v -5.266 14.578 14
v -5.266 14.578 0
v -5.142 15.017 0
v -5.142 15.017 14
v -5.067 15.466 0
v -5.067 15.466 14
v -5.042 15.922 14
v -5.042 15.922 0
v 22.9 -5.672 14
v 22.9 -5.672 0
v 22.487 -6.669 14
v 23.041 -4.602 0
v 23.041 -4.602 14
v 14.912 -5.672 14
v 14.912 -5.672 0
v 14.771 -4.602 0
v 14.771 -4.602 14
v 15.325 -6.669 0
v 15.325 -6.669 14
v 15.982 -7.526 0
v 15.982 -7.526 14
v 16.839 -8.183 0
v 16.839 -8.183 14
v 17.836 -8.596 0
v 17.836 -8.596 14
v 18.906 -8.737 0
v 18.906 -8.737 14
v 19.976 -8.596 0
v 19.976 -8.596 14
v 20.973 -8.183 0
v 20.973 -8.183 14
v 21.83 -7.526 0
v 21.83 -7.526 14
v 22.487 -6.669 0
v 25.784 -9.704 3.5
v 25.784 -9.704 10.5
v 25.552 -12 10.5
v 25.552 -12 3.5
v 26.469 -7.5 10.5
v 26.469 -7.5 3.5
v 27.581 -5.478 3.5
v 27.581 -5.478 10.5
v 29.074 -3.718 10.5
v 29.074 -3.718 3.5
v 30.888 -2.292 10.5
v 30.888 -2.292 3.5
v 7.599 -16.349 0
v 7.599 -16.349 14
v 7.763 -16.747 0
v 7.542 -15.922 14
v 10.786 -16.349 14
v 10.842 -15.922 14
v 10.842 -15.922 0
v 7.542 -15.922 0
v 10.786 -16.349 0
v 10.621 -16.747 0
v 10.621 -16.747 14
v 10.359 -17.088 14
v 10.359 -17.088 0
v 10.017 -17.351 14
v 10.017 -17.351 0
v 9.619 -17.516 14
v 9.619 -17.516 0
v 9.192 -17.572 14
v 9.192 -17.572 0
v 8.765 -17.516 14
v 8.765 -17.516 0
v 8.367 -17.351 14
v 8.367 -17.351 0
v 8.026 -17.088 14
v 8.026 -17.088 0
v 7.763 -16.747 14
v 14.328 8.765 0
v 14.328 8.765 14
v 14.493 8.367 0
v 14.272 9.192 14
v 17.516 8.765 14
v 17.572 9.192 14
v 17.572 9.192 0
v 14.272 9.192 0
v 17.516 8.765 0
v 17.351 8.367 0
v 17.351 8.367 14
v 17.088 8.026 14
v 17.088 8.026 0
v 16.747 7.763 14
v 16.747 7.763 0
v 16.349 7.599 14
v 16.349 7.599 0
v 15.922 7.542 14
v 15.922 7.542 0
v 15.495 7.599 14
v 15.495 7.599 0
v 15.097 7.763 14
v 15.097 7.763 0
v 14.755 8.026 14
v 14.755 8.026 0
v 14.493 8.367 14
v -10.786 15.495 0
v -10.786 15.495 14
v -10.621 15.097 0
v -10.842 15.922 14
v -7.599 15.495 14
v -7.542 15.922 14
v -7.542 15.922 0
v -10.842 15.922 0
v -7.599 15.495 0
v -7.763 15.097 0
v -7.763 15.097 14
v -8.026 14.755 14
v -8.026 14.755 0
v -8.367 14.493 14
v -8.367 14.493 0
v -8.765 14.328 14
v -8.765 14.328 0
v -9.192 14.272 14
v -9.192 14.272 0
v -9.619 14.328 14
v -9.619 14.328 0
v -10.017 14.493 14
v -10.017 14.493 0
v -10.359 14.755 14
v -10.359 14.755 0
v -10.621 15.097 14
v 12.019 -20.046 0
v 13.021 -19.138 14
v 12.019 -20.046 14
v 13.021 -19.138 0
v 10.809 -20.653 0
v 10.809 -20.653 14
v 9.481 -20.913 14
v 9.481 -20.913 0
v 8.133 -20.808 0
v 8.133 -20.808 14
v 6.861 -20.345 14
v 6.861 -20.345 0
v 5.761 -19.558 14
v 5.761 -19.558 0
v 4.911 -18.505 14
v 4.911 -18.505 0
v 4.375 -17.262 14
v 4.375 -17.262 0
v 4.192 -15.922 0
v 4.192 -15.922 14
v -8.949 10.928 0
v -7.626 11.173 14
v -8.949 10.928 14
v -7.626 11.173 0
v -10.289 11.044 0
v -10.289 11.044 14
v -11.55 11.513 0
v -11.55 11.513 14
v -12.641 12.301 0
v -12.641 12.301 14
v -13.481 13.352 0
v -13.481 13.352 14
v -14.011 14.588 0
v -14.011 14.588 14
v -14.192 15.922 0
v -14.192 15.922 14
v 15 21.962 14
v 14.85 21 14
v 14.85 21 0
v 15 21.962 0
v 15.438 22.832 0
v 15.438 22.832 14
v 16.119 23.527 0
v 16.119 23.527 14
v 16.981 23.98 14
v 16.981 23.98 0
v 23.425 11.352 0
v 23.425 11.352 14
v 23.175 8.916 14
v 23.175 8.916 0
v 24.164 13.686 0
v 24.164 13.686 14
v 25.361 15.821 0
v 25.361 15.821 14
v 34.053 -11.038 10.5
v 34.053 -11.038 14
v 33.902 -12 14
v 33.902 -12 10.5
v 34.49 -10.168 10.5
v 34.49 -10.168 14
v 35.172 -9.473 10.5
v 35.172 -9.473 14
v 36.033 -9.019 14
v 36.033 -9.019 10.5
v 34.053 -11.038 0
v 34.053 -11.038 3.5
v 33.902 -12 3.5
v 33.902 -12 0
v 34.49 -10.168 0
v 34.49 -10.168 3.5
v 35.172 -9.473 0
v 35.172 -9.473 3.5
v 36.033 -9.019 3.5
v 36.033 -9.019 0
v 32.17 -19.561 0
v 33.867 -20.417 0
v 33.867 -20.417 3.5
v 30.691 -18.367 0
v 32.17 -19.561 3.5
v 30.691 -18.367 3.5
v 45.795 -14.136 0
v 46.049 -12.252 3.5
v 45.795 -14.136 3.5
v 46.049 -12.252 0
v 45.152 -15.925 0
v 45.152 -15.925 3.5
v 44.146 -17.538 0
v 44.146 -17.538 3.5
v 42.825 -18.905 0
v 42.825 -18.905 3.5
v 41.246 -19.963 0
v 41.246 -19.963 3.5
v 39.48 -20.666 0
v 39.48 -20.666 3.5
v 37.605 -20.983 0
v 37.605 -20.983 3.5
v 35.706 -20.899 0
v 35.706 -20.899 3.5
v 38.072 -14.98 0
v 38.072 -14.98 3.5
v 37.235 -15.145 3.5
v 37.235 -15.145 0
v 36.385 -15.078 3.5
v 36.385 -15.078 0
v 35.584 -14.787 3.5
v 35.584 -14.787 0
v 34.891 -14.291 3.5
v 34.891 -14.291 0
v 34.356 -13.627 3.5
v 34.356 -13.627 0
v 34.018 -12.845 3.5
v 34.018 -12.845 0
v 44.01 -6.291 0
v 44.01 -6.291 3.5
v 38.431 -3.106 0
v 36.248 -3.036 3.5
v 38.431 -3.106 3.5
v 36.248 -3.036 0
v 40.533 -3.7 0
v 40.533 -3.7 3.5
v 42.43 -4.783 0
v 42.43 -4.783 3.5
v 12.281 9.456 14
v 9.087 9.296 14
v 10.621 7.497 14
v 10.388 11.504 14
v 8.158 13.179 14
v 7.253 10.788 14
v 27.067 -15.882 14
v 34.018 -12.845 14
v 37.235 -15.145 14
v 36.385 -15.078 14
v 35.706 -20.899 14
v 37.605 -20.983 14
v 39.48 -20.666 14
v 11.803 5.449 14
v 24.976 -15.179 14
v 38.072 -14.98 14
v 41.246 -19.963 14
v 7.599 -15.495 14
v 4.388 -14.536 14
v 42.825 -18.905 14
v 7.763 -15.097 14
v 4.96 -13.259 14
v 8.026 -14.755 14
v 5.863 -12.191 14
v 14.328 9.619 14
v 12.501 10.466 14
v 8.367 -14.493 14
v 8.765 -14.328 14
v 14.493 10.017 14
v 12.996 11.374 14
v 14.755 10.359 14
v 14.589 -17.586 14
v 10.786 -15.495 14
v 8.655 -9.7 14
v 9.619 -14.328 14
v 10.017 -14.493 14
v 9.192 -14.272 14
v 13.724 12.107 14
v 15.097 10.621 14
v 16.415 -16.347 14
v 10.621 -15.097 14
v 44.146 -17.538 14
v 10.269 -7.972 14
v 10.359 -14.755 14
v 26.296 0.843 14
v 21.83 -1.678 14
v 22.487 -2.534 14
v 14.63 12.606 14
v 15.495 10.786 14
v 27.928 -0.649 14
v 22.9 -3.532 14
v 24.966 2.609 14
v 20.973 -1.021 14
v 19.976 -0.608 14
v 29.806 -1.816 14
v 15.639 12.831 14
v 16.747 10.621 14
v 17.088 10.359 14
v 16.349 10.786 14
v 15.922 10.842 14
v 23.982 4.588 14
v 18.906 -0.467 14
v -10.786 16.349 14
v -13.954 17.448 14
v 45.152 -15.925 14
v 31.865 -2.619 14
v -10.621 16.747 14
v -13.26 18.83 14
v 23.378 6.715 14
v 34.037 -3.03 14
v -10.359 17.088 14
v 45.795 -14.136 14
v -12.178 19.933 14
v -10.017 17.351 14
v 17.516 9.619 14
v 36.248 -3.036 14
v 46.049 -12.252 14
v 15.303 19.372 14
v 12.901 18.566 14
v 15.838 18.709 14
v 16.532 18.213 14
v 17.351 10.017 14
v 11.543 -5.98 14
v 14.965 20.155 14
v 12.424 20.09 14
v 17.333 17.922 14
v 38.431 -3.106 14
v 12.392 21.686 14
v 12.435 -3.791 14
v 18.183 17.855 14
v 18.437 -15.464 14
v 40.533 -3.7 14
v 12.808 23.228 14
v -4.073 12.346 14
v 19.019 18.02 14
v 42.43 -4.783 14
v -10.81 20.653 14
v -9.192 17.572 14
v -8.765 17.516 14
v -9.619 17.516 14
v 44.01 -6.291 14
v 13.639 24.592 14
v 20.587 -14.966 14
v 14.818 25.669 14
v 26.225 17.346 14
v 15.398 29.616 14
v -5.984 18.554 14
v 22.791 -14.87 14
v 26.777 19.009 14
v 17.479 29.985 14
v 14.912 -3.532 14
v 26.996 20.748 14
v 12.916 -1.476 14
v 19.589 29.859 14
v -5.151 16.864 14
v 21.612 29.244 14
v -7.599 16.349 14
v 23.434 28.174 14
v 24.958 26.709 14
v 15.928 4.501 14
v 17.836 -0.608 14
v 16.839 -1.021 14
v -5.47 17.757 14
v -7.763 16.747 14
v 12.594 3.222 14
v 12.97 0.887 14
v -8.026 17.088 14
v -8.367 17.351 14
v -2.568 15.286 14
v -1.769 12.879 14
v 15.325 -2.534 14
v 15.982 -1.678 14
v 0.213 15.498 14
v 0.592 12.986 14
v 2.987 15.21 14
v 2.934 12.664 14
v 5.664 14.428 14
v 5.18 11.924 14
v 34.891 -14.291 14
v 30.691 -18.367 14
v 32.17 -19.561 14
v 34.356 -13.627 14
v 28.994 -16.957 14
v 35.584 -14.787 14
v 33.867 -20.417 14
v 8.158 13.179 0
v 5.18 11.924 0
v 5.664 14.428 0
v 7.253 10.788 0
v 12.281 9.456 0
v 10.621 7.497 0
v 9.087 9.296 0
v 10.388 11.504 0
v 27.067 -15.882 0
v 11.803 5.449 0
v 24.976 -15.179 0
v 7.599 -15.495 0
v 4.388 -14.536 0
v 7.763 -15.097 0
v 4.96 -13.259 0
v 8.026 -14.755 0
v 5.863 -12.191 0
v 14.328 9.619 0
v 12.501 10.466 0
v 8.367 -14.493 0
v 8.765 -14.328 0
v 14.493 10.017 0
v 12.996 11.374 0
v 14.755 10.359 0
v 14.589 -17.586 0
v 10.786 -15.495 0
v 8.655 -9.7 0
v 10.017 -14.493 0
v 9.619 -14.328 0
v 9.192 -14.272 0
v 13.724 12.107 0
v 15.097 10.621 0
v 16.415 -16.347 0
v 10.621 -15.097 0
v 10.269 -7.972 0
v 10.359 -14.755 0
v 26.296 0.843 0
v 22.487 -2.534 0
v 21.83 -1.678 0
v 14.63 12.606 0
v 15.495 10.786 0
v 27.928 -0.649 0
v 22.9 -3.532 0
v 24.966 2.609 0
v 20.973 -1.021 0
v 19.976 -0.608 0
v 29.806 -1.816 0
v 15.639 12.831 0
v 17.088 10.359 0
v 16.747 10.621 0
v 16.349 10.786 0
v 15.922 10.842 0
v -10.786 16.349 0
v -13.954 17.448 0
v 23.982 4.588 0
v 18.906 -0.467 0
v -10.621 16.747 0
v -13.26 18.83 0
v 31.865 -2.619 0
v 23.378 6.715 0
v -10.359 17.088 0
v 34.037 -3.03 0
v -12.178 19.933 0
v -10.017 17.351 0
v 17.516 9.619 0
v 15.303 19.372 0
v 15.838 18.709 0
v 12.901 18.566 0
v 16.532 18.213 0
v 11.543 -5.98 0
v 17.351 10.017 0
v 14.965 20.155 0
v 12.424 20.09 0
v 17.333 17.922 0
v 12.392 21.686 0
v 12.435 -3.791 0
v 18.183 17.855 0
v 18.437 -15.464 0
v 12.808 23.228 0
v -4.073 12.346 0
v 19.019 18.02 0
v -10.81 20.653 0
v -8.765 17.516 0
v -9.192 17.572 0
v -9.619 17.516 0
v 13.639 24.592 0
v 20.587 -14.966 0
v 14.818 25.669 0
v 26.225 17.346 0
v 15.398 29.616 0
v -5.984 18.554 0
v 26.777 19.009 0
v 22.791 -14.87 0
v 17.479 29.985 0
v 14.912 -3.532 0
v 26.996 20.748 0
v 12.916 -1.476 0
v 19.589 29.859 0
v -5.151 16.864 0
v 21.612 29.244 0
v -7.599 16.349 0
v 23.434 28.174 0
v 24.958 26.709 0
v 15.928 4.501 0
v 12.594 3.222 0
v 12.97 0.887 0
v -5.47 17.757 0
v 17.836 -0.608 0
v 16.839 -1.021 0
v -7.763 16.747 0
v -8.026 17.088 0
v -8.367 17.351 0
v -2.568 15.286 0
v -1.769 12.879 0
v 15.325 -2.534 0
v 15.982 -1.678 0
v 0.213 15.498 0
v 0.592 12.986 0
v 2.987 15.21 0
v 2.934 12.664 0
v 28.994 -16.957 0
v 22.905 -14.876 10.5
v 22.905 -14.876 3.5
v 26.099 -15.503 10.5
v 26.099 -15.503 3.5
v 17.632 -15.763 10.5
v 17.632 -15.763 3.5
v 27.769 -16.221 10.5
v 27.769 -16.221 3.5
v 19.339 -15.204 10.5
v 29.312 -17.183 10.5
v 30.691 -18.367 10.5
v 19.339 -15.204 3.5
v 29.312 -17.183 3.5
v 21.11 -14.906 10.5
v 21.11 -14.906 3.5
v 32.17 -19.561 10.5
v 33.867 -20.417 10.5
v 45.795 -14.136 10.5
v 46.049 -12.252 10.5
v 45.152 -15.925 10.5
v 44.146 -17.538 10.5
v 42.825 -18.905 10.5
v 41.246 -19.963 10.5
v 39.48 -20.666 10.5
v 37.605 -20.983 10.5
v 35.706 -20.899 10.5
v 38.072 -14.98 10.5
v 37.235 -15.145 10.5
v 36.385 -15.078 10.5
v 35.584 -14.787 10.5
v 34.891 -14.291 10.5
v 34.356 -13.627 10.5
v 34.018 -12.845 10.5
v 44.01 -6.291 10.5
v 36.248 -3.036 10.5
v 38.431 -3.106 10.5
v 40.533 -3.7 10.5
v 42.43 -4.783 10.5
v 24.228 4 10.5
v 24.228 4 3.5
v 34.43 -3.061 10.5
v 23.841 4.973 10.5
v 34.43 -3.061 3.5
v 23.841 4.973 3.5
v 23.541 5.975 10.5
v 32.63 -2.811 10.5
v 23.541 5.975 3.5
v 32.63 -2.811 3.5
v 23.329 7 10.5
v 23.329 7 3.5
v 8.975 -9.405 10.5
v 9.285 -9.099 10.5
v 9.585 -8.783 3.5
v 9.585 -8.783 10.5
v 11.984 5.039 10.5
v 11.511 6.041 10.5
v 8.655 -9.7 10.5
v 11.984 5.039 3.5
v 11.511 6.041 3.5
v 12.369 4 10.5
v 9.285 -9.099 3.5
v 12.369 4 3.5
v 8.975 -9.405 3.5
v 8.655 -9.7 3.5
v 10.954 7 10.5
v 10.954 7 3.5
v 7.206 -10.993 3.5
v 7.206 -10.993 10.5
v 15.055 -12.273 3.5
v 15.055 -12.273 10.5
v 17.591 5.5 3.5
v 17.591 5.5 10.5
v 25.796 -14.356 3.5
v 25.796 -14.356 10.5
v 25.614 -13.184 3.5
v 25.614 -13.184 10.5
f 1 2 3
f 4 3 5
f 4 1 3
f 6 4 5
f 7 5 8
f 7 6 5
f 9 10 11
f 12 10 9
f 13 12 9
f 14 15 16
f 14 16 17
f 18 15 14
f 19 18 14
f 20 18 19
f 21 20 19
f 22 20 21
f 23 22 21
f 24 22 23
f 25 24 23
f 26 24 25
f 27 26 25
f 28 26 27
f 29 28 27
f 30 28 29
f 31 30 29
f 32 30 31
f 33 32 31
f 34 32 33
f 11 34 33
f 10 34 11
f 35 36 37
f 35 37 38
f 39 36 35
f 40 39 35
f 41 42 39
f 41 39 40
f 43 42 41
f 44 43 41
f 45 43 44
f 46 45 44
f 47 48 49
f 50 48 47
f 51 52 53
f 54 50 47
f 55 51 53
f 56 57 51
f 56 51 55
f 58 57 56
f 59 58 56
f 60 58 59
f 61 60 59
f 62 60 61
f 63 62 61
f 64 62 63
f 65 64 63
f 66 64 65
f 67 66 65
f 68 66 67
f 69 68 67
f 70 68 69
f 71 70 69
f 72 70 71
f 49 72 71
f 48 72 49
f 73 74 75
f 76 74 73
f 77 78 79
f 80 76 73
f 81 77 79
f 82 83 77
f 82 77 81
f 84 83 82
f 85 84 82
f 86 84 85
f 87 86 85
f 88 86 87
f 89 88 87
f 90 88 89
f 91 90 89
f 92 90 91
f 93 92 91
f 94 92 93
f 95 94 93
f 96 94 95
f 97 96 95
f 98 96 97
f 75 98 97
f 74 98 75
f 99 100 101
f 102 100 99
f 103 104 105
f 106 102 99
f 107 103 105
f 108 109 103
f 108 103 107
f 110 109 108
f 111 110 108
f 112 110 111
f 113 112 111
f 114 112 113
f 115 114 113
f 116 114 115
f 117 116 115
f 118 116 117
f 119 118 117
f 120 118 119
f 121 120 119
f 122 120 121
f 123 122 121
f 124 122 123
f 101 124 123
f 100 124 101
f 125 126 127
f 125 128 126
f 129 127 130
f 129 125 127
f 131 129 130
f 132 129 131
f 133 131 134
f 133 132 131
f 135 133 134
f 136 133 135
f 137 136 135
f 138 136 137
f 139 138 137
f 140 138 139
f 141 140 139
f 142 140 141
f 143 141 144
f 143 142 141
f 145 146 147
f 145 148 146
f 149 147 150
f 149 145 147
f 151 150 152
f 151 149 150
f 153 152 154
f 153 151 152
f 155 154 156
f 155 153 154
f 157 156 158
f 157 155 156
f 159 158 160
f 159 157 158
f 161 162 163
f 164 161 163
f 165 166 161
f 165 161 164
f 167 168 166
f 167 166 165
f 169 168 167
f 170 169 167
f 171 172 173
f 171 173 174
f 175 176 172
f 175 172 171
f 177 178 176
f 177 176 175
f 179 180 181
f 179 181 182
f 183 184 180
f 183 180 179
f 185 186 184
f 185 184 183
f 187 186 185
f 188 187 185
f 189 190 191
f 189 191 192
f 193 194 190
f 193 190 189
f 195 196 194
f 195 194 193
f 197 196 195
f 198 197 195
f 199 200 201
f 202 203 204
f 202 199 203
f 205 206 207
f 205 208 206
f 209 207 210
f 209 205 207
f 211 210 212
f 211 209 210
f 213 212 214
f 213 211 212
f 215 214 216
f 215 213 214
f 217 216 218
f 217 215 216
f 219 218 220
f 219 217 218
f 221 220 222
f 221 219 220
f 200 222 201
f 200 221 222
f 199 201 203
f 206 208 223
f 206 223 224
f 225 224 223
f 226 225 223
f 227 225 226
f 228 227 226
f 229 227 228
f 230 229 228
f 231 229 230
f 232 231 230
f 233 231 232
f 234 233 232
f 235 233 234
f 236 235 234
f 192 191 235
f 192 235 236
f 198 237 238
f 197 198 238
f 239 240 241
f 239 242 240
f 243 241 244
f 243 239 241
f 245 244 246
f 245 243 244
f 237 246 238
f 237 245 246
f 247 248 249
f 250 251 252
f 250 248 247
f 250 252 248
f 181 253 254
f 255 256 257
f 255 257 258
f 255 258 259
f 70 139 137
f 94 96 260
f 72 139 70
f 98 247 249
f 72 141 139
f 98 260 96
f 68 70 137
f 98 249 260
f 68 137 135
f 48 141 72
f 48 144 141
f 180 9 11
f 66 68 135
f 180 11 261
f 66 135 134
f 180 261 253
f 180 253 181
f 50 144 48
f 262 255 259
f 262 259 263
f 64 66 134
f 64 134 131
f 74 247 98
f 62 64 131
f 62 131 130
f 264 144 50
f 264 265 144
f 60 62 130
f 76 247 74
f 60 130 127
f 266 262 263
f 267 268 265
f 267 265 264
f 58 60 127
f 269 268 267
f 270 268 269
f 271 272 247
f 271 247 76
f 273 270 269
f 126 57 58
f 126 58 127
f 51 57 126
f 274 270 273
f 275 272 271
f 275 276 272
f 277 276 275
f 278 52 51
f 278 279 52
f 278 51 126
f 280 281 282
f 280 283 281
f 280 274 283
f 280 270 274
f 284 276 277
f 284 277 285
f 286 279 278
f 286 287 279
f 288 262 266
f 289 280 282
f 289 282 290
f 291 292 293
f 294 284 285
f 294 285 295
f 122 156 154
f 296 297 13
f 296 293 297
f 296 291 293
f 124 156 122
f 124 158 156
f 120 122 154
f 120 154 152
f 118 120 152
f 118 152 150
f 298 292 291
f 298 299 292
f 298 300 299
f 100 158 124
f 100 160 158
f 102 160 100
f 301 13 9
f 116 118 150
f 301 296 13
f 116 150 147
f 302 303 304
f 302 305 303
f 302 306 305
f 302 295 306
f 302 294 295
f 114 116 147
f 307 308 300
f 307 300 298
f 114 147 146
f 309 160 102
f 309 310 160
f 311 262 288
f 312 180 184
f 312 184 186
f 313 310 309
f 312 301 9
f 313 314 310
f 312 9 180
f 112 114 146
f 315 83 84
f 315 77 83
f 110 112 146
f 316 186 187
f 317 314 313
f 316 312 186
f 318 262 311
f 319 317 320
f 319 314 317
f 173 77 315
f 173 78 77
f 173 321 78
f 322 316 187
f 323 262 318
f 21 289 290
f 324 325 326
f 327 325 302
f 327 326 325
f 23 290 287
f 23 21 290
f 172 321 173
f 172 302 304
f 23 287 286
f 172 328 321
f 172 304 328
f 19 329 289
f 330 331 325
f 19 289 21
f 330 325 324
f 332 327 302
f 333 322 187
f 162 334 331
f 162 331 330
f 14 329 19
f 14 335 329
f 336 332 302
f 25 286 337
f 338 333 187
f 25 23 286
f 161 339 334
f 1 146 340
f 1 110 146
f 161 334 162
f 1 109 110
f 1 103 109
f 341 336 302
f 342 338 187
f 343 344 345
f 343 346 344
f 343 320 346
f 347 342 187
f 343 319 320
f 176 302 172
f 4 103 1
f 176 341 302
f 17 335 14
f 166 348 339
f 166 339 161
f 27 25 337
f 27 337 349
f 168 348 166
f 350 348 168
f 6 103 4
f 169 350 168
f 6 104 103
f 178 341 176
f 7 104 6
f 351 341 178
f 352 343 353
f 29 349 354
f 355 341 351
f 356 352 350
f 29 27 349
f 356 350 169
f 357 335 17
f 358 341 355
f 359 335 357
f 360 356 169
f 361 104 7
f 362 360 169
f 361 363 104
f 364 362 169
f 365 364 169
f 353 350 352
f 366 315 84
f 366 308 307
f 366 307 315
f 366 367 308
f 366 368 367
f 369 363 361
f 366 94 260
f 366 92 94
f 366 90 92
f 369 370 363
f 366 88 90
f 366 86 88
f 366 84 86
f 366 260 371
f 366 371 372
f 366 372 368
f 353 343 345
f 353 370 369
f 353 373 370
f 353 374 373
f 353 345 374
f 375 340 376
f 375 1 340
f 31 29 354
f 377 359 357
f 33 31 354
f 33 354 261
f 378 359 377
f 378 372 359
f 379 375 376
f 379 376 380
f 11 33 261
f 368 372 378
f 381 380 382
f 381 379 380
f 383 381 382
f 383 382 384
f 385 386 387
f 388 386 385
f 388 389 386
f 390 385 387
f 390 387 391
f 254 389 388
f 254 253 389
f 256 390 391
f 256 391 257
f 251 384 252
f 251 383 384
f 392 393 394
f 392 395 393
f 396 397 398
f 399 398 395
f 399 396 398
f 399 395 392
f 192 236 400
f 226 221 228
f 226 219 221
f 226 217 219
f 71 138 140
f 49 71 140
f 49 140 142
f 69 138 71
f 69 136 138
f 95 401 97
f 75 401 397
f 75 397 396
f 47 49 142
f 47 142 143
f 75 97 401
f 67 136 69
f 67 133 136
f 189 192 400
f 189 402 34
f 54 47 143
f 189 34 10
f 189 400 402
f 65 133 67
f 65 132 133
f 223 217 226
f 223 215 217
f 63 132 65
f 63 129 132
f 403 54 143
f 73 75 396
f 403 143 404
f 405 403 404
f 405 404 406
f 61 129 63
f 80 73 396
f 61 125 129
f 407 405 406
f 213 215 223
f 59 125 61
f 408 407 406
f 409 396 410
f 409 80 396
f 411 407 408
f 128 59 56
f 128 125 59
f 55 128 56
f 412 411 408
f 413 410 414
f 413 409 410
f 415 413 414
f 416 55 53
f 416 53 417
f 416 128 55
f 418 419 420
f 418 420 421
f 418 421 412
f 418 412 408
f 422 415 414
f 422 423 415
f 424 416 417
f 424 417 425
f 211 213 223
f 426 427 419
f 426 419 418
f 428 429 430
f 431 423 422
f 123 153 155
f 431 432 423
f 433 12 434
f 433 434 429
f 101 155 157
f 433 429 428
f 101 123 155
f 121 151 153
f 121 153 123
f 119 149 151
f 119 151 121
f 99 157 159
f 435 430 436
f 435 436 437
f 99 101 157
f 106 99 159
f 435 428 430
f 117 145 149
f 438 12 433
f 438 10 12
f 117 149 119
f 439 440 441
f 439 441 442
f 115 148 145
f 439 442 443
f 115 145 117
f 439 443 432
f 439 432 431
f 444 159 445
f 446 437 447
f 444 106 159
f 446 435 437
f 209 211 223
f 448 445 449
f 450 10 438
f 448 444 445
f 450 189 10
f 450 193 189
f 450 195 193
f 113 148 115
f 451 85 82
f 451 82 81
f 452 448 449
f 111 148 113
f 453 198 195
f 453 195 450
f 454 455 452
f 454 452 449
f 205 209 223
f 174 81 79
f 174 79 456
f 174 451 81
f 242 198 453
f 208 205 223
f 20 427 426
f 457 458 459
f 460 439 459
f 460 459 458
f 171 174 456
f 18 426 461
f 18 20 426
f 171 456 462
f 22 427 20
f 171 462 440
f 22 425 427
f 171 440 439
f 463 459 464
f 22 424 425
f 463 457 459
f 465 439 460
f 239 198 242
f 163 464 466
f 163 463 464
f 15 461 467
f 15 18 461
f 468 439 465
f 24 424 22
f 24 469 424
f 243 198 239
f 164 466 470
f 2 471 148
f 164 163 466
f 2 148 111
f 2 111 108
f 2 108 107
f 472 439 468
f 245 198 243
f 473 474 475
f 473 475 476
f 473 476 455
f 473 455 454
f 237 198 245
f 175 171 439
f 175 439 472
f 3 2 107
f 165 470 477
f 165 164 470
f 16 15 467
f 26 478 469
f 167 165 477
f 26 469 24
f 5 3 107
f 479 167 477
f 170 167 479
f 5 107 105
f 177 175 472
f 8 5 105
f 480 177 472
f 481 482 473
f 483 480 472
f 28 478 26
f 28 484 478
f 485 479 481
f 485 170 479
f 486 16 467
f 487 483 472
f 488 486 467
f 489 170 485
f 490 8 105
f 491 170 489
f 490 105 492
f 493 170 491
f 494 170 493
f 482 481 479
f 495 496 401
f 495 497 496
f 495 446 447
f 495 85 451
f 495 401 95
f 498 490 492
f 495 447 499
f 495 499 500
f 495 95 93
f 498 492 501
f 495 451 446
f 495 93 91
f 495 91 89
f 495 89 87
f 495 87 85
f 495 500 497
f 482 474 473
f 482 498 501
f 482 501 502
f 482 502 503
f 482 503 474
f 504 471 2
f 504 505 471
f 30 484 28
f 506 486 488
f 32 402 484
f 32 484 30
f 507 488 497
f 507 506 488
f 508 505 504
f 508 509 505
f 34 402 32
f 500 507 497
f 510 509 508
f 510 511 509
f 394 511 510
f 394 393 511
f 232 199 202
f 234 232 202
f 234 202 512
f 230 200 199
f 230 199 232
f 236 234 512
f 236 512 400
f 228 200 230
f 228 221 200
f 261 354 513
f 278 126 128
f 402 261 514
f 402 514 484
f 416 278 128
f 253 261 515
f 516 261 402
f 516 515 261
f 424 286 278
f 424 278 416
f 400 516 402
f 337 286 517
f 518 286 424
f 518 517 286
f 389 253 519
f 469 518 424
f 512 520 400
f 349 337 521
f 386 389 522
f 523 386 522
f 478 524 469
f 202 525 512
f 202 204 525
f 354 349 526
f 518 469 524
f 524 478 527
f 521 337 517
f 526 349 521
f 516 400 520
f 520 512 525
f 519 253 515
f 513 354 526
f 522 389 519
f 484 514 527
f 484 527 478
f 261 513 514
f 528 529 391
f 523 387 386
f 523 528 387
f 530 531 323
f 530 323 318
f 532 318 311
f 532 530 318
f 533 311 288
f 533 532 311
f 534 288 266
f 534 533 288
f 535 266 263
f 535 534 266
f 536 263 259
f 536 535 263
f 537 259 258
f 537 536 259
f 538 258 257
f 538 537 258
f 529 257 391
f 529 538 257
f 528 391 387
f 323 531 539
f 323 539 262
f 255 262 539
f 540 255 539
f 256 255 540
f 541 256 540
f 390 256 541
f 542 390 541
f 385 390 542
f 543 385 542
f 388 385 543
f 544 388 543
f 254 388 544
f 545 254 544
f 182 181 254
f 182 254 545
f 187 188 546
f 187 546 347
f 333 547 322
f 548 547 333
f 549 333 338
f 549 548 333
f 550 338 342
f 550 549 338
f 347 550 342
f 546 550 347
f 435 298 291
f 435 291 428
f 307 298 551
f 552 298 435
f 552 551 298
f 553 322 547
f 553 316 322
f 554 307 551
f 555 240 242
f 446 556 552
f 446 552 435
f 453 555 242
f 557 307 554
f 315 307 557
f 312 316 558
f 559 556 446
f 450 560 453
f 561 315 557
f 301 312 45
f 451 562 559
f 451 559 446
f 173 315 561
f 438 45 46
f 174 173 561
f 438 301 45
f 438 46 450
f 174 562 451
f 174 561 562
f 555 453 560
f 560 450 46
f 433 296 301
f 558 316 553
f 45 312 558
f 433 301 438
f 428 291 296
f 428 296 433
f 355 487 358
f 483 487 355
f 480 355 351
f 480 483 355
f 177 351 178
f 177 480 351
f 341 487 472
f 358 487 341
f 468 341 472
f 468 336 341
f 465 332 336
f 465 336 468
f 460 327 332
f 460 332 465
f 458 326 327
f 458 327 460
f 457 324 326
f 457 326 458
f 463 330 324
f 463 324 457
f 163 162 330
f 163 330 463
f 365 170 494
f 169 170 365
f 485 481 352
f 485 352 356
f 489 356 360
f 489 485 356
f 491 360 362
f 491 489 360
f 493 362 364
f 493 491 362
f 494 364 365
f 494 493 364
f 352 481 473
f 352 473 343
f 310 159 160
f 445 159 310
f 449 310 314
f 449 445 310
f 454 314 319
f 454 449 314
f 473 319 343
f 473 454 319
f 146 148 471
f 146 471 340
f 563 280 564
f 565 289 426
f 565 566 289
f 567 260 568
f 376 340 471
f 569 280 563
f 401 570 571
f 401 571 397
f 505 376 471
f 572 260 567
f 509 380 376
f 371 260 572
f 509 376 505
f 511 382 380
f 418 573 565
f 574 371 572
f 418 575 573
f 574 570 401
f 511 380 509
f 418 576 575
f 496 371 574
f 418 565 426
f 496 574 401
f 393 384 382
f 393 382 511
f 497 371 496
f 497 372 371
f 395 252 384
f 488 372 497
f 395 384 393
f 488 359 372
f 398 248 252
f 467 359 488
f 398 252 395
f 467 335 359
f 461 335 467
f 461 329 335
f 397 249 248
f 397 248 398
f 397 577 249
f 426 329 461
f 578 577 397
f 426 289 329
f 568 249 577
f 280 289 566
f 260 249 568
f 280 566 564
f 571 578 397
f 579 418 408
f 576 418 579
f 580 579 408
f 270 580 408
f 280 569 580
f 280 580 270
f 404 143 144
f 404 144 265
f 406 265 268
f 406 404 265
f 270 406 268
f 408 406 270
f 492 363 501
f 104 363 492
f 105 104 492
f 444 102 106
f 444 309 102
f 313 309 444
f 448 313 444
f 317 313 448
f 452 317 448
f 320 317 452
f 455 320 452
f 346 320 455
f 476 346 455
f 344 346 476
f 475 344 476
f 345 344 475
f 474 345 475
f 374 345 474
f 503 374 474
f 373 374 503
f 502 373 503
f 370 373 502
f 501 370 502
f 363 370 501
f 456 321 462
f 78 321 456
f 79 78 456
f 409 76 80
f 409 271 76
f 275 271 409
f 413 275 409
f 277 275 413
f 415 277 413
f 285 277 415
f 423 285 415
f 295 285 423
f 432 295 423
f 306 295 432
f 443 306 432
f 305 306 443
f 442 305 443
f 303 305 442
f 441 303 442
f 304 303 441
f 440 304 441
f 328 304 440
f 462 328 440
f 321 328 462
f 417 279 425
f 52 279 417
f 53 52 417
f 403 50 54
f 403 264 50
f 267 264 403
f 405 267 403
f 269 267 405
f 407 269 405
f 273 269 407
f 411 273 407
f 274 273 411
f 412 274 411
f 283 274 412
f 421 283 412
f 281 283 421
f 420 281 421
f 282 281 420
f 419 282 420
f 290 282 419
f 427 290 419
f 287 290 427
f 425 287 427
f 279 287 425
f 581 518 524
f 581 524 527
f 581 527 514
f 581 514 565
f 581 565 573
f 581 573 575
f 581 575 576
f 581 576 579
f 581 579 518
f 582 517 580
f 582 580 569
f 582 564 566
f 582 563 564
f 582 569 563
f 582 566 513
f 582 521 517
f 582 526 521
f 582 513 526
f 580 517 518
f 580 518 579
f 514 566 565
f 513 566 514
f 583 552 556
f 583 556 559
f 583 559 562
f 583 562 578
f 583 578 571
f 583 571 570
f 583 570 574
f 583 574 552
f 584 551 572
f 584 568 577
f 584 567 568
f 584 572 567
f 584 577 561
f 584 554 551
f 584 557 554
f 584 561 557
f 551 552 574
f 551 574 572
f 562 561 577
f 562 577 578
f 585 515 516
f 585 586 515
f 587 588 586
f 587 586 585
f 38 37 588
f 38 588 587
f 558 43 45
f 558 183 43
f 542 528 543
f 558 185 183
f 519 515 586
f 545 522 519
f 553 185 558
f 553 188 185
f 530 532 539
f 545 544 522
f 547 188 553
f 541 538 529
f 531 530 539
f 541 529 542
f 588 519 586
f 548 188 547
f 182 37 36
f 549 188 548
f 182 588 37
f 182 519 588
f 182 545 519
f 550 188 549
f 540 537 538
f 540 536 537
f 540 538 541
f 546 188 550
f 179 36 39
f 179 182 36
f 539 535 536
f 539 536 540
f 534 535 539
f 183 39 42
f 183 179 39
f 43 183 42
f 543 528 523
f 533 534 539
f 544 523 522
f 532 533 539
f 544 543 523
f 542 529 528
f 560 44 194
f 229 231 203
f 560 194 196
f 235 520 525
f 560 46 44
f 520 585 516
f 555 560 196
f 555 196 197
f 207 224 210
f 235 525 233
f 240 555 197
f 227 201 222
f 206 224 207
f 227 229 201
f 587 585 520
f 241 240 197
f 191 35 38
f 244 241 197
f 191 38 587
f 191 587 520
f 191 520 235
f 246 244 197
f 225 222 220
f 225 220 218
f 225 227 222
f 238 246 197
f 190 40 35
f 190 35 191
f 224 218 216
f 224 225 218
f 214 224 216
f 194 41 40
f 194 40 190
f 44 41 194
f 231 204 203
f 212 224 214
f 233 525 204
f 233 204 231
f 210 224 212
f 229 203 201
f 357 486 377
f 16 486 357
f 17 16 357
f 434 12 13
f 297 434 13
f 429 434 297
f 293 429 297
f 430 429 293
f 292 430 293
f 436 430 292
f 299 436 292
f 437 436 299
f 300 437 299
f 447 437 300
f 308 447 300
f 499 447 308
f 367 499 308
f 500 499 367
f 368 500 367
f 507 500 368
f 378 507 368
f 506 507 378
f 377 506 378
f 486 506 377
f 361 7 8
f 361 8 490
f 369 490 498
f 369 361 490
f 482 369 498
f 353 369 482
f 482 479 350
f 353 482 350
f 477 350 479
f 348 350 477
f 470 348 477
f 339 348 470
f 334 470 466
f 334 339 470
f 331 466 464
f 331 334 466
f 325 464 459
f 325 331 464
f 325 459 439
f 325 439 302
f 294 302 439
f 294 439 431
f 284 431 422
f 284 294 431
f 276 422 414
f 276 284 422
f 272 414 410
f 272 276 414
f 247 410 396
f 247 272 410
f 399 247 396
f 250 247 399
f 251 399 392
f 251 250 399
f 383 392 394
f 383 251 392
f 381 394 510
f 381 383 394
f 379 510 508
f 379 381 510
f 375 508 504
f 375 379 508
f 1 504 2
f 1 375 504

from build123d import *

# Parameters (mm, degrees)
SKETCH1_R               = 1.65
BOSS_EXTRUDE1_DEPTH     = 14
CUT_EXTRUDE1_DEPTH      = 3.5
CUT_EXTRUDE1_DEPTH_BACK = 3.5
SKETCH4_R               = 4.134785872
CUT_EXTRUDE2_DEPTH      = 15


with BuildPart() as part:
    # Sketch1 → Boss-Extrude1 (new body)
    with BuildSketch(Plane.XY):
        with BuildLine():
            Line((-4.072673183, 12.345579498), (-7.625975393, 11.173383521))
            ThreePointArc((-7.625975393, 11.173383521), (-13.932101619, 14.329478478), (-10.810338029, 20.652670351))
            Line((-10.810338029, 20.652670351), (15.398053767, 29.615676166))
            ThreePointArc((15.398053767, 29.615676166), (20.618433164, 29.610679867), (24.957842791, 26.708627129))
            Line((24.957842791, 26.708627129), (16.98069158, 23.980521824))
            ThreePointArc((16.98069158, 23.980521824), (15.019478176, 19.98069158), (19.01930842, 18.019478176))
            Line((19.01930842, 18.019478176), (26.996459631, 20.747583481))
            ThreePointArc((26.996459631, 20.747583481), (26.541449303, 18.163868162), (25.360666834, 15.821140689))
            ThreePointArc((25.360666834, 15.821140689), (24.782584433, 2.915994941), (36.247809691, -3.035943889))
            ThreePointArc((36.247809691, -3.035943889), (40.533104807, -3.700175716), (44.010342791, -6.291270882))
            Line((44.010342791, -6.291270882), (36.03319158, -9.019376187))
            ThreePointArc((36.03319158, -9.019376187), (34.071978176, -13.019206432), (38.07180842, -14.980419835))
            Line((38.07180842, -14.980419835), (46.048959631, -12.25231453))
            ThreePointArc((46.048959631, -12.25231453), (40.381510061, -20.361577987), (30.691295483, -18.366614362))
            ThreePointArc((30.691295483, -18.366614362), (21.686652044, -14.866973588), (13.021006186, -19.137532201))
            ThreePointArc((13.021006186, -19.137532201), (5.710138119, -19.509709901), (5.863446279, -12.190980179))
            Line((5.863446279, -12.190980179), (8.655248878, -9.699828187))
            ThreePointArc((8.655248878, -9.699828187), (11.258330249, 6.5), (-4.072673183, 12.345579498))
        make_face()
        with Locations((-9.192388155, 15.921683328)):
            Circle(SKETCH1_R, mode=Mode.SUBTRACT)
        with Locations((15.921683328, 9.192388155)):
            Circle(SKETCH1_R, mode=Mode.SUBTRACT)
        with Locations((9.192388155, -15.921683328)):
            Circle(SKETCH1_R, mode=Mode.SUBTRACT)
    extrude(amount=BOSS_EXTRUDE1_DEPTH)

    # Sketch3 → Cut-Extrude1 (cut, two sides)
    with BuildSketch(Plane.XY.offset(7)) as cut_extrude1_sk:
        with BuildLine():
            Line((0, 7), (37.0525, 7))
            Line((37.0525, 7), (37.0525, 4))
            Line((37.0525, 4), (5.744562647, 4))
            ThreePointArc((5.744562647, 4), (6.839579176, -1.490019025), (3.560144623, -6.027053199))
            Line((3.560144623, -6.027053199), (26.472773451, -16.50760099))
            ThreePointArc((26.472773451, -16.50760099), (45.290154871, -3.975495091), (32.268920997, -22.457783645))
            Line((32.268920997, -22.457783645), (-2.911743741, -6.365669516))
            ThreePointArc((-2.911743741, -6.365669516), (-6.839579176, 1.490019025), (0, 7))
        make_face()
    extrude(amount=CUT_EXTRUDE1_DEPTH, mode=Mode.SUBTRACT)
    extrude(cut_extrude1_sk.sketch, amount=-CUT_EXTRUDE1_DEPTH_BACK, mode=Mode.SUBTRACT)

    # Sketch4 → Cut-Extrude2 (cut, through all)
    with BuildSketch(Plane.XY.offset(14)):
        with Locations((18.906044872, -4.601778811)):
            Circle(SKETCH4_R)
        with BuildLine():
            Line((15.638639586, 12.831397119), (12.901157572, 18.566010293))
            ThreePointArc((12.901157572, 18.566010293), (12.545106314, 22.471949344), (14.817713576, 25.668570778))
            Line((14.817713576, 25.668570778), (-5.984422938, 18.554449775))
            ThreePointArc((-5.984422938, 18.554449775), (-5.108522805, 16.659615437), (-5.265913096, 14.578071178))
            ThreePointArc((-5.265913096, 14.578071178), (4.343025459, 14.879117241), (12.281235493, 9.456281234))
            ThreePointArc((12.281235493, 9.456281234), (13.333962642, 11.766529109), (15.638639586, 12.831397119))
        make_face()
    extrude(amount=-CUT_EXTRUDE2_DEPTH, mode=Mode.SUBTRACT)


solid = part.part
